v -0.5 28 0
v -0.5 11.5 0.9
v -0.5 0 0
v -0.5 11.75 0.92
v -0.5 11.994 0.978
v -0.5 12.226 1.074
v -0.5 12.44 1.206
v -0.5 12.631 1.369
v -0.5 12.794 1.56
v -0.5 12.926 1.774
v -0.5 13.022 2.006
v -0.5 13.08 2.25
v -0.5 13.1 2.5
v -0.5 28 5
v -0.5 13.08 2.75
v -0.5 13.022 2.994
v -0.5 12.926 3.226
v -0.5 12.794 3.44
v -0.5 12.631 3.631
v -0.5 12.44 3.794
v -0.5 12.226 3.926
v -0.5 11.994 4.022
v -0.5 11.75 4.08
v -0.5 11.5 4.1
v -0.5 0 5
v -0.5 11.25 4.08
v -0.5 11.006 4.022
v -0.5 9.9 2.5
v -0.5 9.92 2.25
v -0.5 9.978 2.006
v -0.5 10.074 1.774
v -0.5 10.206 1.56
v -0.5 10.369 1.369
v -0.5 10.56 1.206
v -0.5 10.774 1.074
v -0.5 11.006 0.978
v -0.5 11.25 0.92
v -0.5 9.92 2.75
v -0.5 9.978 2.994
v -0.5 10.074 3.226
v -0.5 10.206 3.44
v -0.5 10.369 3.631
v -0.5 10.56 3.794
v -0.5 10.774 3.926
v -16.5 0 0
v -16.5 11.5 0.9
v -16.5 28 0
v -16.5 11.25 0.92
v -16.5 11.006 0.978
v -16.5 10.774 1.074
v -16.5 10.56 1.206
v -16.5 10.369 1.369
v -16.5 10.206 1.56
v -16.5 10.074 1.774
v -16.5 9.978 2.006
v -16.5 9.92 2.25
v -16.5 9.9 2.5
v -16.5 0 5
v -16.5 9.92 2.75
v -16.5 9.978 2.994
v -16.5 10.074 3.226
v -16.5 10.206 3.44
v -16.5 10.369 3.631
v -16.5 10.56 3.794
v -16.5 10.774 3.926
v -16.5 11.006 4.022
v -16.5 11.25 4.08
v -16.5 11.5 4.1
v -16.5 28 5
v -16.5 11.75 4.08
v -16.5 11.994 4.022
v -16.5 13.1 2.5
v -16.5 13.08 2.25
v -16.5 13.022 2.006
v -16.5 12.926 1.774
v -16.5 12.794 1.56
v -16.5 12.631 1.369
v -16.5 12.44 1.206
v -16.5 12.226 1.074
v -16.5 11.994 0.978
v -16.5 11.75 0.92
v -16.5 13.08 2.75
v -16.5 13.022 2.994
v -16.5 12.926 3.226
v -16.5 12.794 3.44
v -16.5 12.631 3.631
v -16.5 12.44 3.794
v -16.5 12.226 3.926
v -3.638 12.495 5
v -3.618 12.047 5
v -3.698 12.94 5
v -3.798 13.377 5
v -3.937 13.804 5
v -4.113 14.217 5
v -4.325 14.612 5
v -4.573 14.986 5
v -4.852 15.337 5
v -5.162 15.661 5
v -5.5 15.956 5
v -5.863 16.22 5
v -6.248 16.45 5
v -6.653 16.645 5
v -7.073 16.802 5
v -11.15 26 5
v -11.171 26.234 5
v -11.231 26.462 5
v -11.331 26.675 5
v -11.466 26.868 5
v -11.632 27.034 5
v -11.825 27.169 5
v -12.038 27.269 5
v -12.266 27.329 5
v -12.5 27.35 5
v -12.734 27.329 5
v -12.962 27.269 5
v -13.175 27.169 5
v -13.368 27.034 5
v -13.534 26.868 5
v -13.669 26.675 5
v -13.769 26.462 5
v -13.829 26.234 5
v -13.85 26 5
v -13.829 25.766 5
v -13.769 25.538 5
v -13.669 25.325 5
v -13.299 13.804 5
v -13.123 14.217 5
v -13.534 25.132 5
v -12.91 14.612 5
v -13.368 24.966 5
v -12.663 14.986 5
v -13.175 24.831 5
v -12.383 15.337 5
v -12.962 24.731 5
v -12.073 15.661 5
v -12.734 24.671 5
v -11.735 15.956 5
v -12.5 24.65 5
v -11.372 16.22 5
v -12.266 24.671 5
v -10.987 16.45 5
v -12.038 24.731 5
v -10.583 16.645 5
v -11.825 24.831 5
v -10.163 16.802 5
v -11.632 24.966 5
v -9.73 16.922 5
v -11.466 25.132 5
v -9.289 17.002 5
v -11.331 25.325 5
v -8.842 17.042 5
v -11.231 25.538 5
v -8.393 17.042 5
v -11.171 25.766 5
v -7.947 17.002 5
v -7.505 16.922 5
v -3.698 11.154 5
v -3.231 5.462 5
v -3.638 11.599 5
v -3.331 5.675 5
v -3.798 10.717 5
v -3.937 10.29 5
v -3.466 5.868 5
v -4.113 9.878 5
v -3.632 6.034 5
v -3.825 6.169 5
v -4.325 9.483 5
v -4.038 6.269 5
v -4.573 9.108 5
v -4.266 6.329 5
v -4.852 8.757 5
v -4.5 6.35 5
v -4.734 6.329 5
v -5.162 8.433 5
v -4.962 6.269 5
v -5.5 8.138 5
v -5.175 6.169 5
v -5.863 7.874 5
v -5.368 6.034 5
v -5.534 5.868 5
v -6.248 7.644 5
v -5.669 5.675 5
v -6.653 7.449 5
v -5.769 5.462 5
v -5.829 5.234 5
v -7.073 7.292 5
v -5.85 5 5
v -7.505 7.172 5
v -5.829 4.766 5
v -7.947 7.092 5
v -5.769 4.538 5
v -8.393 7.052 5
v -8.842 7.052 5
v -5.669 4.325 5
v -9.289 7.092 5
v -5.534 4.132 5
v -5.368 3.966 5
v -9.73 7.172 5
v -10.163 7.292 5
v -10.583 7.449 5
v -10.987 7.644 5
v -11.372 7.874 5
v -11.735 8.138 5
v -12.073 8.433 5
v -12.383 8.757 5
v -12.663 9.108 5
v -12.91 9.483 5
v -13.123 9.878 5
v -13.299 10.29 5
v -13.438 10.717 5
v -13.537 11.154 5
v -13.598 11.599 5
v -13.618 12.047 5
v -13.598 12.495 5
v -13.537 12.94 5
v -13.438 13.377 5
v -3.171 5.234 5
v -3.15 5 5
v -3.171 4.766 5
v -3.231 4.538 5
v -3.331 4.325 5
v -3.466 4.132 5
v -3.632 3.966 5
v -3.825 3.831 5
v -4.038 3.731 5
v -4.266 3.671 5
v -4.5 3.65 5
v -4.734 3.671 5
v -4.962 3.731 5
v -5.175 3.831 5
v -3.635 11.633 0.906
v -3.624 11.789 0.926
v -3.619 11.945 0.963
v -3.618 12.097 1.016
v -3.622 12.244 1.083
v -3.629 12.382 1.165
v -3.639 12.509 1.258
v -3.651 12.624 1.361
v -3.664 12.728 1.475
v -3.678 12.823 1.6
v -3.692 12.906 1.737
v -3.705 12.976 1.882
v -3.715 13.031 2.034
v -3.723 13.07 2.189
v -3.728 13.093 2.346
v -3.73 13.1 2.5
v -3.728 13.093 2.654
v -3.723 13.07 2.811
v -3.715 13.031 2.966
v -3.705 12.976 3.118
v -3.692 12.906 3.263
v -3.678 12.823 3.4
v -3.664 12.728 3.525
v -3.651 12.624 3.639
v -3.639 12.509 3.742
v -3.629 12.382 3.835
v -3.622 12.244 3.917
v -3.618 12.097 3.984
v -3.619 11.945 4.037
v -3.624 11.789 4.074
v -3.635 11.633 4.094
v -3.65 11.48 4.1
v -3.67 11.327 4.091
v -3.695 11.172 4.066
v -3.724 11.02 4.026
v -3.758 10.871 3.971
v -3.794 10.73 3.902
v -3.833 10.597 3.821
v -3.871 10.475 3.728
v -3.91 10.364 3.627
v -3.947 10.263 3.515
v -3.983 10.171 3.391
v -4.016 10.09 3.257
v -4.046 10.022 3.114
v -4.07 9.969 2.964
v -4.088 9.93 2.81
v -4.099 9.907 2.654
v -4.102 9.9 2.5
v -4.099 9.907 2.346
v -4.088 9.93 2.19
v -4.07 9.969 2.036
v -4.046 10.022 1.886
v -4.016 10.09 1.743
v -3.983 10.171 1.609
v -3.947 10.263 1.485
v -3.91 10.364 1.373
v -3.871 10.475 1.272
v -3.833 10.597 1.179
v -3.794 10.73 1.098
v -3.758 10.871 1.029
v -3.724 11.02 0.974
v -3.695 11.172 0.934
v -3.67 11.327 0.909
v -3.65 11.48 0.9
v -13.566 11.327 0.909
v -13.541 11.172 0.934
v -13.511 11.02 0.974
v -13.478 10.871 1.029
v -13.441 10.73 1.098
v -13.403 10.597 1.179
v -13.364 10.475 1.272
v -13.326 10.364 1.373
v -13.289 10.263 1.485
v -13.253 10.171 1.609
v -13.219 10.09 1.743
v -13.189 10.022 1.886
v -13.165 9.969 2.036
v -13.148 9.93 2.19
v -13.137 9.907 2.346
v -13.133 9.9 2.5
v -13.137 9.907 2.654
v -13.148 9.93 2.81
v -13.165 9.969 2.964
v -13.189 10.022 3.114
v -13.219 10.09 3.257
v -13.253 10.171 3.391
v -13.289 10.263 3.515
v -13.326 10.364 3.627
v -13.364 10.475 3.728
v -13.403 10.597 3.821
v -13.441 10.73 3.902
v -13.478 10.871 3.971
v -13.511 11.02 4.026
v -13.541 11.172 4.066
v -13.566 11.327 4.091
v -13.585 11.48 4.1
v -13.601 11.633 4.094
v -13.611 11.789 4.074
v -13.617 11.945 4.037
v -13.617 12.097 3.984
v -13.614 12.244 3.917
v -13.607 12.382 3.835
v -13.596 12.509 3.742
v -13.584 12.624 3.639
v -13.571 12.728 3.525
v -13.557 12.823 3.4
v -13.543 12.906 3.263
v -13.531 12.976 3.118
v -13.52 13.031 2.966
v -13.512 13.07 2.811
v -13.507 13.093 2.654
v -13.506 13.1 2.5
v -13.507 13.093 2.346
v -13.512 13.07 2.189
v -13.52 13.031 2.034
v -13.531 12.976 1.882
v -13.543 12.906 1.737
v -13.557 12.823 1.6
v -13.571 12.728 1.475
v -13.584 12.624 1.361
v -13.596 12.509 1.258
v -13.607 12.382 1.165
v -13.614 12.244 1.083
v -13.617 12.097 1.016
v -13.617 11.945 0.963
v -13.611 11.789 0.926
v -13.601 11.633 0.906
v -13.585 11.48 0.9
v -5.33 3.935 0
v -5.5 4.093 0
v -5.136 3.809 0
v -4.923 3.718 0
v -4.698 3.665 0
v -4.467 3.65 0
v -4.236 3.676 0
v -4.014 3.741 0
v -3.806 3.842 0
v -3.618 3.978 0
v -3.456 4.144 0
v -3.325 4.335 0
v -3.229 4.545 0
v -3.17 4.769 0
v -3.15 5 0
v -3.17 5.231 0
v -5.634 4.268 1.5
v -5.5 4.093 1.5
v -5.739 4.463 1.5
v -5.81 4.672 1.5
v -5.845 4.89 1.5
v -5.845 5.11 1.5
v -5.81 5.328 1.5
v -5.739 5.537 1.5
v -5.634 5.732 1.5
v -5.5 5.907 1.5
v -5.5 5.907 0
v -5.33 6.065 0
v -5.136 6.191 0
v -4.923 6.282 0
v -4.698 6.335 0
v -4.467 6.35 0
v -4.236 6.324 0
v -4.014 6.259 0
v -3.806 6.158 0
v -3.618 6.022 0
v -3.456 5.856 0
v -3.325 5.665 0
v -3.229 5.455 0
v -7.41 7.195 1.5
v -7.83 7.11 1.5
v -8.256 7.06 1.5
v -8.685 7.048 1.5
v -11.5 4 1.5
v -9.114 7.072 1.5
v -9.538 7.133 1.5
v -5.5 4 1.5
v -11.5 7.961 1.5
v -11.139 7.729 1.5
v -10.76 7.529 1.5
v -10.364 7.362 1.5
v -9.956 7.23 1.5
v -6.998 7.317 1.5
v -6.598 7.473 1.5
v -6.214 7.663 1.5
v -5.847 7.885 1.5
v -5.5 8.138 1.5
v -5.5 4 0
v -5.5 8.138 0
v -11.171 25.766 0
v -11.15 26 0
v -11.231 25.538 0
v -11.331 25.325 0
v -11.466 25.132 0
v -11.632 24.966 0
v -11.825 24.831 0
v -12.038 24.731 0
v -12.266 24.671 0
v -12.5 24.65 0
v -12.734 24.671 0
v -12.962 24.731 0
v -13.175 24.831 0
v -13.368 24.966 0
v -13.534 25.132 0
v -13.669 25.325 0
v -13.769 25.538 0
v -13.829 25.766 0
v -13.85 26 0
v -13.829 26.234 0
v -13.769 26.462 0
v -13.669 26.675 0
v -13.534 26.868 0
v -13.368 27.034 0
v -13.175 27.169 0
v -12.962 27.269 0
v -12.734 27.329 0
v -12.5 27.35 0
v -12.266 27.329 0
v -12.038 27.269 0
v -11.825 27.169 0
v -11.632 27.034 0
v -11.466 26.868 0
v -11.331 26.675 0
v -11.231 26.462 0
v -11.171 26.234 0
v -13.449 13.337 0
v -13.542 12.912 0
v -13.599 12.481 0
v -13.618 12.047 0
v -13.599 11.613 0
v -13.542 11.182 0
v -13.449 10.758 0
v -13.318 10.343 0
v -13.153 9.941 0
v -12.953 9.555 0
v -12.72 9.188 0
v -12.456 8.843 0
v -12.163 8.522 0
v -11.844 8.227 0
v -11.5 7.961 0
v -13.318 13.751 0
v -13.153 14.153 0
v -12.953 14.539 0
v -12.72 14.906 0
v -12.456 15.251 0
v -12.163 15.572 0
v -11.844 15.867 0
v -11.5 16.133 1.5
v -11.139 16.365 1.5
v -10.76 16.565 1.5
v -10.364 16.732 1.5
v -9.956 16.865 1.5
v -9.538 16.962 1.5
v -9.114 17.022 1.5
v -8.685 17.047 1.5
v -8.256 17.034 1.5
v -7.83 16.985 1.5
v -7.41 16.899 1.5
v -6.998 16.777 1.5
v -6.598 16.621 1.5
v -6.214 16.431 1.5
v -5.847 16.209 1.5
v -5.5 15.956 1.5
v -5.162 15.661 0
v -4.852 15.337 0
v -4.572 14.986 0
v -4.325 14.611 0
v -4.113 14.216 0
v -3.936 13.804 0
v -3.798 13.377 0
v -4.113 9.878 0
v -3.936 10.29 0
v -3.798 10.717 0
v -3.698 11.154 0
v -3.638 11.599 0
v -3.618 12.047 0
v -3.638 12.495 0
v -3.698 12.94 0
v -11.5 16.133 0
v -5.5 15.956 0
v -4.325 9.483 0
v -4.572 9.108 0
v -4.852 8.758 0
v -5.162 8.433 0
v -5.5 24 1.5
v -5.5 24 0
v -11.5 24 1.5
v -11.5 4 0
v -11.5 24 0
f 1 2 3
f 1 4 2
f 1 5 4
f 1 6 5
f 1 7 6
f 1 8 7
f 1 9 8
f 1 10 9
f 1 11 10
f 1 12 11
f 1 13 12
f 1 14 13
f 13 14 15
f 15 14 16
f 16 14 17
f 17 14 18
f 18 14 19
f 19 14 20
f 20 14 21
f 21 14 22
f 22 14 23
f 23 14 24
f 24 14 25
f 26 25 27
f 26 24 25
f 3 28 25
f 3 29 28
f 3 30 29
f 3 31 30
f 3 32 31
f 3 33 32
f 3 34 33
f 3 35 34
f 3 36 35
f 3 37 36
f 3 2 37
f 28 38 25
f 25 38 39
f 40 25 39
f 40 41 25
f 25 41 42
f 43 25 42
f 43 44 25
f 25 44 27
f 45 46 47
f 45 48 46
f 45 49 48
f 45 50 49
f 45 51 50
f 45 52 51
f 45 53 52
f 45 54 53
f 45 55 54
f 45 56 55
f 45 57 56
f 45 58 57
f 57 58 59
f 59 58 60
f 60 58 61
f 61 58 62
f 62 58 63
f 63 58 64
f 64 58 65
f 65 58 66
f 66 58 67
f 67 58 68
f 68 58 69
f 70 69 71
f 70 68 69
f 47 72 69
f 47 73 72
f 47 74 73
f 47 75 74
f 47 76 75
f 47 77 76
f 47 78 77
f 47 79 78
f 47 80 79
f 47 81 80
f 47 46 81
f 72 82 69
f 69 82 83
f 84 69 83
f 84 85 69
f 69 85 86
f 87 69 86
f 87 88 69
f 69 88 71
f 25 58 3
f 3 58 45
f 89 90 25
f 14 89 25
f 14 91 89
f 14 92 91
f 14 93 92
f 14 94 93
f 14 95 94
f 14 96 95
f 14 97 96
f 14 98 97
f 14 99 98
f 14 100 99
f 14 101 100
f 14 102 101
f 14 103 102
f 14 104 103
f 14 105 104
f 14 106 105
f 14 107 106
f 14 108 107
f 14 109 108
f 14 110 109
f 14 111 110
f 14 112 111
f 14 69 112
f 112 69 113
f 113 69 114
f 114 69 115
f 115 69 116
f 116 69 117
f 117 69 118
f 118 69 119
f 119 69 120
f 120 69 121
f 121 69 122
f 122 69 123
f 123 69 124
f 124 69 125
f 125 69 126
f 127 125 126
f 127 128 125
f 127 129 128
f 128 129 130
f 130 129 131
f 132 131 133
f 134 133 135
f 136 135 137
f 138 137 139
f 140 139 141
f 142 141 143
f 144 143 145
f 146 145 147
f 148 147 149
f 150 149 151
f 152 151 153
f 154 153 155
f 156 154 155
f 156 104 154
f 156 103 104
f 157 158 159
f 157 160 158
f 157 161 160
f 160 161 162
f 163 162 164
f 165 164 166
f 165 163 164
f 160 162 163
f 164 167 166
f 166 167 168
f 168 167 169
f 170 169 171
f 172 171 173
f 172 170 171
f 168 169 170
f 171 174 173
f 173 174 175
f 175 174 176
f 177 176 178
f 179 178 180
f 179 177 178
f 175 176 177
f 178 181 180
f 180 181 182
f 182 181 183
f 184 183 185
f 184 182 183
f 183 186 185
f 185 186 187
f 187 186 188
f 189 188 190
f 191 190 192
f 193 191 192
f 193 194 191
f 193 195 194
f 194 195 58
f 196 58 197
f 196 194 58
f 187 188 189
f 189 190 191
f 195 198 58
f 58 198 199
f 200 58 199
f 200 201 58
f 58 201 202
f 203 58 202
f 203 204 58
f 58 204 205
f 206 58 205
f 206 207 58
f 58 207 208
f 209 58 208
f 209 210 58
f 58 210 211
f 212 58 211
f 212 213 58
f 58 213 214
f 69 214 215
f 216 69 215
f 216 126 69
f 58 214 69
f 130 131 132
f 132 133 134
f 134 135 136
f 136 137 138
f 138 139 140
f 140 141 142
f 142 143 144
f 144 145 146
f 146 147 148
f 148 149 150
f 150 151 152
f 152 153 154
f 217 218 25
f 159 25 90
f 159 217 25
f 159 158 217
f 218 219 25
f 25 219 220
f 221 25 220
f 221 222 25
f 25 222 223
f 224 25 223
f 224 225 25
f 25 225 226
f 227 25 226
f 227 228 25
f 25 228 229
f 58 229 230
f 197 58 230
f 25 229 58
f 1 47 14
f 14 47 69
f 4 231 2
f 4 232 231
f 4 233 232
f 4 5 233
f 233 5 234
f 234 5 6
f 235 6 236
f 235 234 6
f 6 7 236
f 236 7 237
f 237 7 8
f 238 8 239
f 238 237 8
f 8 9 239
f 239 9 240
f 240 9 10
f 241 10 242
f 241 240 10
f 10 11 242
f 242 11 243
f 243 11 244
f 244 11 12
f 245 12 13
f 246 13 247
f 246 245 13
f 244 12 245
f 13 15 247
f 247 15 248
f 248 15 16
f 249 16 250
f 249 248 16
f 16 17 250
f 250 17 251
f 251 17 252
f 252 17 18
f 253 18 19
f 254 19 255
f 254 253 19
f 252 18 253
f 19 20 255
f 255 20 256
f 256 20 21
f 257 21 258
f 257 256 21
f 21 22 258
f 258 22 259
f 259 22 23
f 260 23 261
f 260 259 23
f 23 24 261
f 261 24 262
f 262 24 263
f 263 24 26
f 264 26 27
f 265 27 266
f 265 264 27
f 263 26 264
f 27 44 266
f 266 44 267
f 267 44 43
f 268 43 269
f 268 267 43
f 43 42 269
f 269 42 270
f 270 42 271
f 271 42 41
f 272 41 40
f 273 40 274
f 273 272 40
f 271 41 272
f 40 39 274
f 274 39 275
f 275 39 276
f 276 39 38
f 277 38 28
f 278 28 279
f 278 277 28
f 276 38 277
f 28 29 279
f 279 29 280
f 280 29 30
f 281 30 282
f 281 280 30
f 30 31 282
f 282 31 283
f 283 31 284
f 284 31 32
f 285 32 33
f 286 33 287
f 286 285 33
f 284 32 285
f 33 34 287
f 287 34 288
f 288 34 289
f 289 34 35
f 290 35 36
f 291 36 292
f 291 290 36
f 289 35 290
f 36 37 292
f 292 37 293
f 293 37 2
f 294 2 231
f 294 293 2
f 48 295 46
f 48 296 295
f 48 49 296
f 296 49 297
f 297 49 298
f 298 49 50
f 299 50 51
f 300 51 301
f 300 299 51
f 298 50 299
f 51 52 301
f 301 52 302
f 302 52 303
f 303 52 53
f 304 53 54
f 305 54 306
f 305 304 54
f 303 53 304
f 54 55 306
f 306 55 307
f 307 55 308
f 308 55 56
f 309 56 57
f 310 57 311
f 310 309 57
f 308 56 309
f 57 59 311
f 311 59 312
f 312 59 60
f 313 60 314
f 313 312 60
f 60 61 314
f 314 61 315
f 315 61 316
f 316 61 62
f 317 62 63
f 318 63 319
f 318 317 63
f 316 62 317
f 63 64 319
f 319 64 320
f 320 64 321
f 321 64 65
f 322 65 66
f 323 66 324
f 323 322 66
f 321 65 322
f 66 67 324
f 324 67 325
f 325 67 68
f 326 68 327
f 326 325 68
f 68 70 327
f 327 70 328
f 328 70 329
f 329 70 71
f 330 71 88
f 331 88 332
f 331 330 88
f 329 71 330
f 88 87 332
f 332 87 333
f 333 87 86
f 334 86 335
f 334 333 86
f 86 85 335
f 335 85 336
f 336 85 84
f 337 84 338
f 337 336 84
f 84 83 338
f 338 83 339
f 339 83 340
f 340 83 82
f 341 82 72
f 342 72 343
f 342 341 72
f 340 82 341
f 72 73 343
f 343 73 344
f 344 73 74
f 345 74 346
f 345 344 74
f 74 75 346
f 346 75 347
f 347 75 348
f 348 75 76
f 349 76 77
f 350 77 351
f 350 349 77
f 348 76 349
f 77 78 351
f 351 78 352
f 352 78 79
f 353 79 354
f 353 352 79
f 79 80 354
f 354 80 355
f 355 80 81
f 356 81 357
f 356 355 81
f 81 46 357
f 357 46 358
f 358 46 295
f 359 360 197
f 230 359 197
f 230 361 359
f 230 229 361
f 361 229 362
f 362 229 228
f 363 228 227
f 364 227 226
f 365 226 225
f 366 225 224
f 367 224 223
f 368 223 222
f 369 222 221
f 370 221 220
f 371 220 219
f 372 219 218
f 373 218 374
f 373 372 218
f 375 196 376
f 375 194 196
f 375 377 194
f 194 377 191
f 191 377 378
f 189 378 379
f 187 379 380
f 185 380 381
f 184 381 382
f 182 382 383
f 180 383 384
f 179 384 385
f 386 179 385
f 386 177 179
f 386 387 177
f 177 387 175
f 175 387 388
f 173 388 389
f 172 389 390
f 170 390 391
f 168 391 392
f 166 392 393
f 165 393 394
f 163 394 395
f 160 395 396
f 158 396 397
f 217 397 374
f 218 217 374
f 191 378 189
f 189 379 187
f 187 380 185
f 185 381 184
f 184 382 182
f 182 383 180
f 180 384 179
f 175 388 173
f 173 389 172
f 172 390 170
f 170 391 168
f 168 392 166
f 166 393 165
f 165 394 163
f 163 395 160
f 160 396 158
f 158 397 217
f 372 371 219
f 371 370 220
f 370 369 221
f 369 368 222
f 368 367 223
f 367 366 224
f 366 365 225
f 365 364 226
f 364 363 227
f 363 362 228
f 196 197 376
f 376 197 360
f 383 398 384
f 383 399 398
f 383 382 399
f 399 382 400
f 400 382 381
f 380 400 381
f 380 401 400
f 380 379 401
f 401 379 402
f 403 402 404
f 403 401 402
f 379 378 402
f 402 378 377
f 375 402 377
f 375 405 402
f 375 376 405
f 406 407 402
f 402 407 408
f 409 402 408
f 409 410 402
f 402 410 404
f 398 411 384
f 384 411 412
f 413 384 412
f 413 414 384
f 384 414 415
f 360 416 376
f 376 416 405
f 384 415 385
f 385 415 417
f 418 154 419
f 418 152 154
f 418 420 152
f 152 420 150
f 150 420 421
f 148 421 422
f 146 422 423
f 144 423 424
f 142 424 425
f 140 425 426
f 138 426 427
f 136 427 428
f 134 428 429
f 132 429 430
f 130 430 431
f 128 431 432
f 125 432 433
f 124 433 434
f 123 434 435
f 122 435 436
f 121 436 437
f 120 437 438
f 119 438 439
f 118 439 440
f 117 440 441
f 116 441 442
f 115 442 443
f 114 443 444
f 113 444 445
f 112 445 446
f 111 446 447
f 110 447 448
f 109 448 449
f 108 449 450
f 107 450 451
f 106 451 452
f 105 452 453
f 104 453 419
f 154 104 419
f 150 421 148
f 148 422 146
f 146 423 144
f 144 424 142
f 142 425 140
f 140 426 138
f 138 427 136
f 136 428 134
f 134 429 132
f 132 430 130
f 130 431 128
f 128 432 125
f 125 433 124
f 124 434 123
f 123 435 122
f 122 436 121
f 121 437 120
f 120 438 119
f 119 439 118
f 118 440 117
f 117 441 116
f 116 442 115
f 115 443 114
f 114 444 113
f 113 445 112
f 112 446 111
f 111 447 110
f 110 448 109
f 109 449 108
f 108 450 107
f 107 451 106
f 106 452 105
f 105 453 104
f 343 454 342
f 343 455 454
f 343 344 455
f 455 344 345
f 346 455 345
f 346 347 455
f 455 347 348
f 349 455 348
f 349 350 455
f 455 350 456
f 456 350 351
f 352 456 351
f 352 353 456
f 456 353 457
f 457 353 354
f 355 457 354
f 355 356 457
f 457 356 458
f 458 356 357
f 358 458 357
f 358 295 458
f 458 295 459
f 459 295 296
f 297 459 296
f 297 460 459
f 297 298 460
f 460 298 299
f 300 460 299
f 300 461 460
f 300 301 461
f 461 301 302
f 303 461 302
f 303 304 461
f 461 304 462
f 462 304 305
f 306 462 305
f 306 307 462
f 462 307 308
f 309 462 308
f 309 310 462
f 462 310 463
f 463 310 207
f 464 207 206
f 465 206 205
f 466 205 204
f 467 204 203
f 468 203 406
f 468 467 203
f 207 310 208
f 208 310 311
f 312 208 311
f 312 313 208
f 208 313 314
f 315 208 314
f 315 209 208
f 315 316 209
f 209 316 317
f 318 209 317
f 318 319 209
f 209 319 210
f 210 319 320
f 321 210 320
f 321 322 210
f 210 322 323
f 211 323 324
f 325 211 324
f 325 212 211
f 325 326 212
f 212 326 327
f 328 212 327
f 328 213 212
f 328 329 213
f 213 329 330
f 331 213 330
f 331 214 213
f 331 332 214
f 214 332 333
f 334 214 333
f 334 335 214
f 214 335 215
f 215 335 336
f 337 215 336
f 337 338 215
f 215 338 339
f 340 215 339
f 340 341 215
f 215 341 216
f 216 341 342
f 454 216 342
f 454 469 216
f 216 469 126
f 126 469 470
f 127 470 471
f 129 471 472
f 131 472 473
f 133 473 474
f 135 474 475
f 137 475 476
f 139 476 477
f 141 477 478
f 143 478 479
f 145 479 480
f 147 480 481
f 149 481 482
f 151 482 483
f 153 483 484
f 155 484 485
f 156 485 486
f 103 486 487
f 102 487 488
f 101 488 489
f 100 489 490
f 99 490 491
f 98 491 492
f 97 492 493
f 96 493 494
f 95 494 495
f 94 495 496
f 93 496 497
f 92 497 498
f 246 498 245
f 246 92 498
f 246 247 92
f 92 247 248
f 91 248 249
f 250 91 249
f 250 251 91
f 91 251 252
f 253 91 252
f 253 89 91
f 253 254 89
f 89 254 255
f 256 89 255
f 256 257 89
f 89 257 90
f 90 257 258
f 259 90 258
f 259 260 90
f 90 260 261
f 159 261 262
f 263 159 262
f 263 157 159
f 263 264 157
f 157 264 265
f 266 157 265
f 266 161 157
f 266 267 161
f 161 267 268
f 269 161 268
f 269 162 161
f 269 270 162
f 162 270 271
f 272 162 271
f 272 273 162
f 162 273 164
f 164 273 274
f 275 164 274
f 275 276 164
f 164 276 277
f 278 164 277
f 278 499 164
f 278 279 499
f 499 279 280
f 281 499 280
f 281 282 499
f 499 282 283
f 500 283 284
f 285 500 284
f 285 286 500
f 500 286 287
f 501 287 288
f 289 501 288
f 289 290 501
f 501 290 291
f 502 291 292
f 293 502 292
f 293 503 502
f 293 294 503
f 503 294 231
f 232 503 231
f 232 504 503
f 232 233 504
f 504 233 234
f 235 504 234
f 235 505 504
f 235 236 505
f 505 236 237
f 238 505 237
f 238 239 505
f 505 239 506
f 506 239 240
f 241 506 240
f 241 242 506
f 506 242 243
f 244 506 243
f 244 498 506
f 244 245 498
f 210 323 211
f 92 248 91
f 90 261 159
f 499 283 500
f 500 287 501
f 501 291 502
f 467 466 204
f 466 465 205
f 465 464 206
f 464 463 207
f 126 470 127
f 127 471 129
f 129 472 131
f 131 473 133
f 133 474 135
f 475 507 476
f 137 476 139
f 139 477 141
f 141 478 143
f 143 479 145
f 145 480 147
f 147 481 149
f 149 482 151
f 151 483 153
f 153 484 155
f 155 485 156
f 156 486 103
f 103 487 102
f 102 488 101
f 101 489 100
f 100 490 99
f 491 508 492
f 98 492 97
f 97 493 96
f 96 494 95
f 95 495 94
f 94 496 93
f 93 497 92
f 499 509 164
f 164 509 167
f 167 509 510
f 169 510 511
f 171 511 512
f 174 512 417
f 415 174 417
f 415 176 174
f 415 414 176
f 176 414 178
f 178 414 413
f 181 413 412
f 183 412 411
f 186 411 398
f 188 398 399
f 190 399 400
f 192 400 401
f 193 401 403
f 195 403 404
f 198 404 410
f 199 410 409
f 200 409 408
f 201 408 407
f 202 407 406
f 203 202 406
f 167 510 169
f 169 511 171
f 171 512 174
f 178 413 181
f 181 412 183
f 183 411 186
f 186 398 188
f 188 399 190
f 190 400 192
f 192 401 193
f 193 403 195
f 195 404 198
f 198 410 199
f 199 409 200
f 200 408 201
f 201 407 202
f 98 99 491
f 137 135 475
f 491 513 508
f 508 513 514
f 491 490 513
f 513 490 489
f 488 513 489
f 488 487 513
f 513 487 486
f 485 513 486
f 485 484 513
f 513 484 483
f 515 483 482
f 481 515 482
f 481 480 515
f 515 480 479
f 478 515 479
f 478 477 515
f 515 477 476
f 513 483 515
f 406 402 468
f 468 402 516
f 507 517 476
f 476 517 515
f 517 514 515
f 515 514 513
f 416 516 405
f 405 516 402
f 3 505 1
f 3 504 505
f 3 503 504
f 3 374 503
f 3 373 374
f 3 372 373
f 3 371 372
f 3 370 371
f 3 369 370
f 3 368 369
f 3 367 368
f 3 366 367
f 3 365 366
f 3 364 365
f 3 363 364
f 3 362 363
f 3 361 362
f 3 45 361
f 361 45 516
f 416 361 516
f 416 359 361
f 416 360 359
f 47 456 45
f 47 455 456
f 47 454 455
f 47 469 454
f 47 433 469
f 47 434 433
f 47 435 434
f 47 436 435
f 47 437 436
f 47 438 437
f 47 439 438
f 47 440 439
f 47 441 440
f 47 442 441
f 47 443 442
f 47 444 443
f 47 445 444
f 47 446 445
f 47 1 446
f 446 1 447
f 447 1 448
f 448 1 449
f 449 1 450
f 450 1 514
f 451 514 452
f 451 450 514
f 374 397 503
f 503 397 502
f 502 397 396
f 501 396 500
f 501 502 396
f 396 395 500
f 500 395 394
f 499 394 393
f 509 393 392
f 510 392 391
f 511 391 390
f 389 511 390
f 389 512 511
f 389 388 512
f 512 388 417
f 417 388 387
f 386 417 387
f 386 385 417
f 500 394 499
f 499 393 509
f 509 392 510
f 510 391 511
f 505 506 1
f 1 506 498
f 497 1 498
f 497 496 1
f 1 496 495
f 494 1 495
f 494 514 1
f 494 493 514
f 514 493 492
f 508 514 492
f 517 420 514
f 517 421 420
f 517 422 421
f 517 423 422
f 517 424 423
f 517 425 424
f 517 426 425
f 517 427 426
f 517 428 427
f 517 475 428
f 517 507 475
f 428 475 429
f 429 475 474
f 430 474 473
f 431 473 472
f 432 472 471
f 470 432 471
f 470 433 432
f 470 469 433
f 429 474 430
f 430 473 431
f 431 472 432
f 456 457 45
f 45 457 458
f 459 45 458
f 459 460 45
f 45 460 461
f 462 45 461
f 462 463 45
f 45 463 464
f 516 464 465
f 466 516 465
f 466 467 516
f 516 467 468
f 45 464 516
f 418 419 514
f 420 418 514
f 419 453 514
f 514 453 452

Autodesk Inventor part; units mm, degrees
ref_plane "YZ Plane" through (0, 0, 0) normal (1, 0, 0) x (0, 1, 0)
ref_plane "XZ Plane" through (0, 0, 0) normal (0, 1, 0) x (-1, 0, 0)
ref_plane "XY Plane" through (0, 0, 0) normal (0, 0, 1) x (1, 0, 0)
sketch "Sketch2" plane through (0, 0, 0) normal (0, 0, 1) x (1, 0, 0)
  line L0 (-17, 28) -> (0, 28)
  line L1 (0, 28) -> (0, 17)
  line L2 (0, 7) -> (0, 0)
  line L3 (0, 0) -> (-17, 0)
  line L4 (-17, 0) -> (-17, 7)
  line L5 (-17, 28) -> (-17, 17)
  line L6 (-17, 17) -> (-17, 7)
  line L7 (0, 17) -> (0, 7)
  dimension "d0" = 17
  dimension "d1" = 28
extrude "Extrusion1" add sketch "Sketch2" along normal blind 5
sketch "Sketch4" plane through (0, 0, 0) normal (0, 0, -1) x (-1, 0, 0)
  line L0 (17, 28) -> (0, 28) projected
  line L1 (0, 28) -> (0, 0) projected
  line L2 (0, 0) -> (17, 0) projected
  line L3 (17, 0) -> (17, 28) projected
  line L4 (0, 28) -> (17, 28) projected
  line L5 (11.5, 24) -> (11.5, 4)
  line L6 (11.5, 4) -> (5.5, 4)
  line L7 (5.5, 4) -> (5.5, 24)
  line L8 (5.5, 24) -> (11.5, 24)
  dimension "d15" = 6
  dimension "d17" = 5.5
  dimension "d30" = 20
  dimension "d31" = 4
extrude "Extrusion3" cut sketch "Sketch4" against normal blind 1.5 contours L5 L6 L7 L8
sketch "Sketch5" plane through (0, 0, 5) normal (0, 0, 1) x (1, 0, 0)
  line L0 (0, 28) -> (-17, 28) projected
  line L1 (-17, 28) -> (-17, 0) projected
  line L2 (-17, 0) -> (0, 0) projected
  line L3 (0, 0) -> (0, 28) projected
  line L4 (-21, 17) -> (4, 7)
  line L5 (-21.4753, 7) -> (4, 17)
  circle A0 centre (-8.6177, 12.0471) radius 5
  dimension "d20" = 10
  dimension "d21" = 12.0471
extrude "Extrusion4" cut sketch "Sketch5" against normal through all contours A0 L4 L5 | L5 L4 A0 | L4 L5 A0 | A0 L5 L4
sketch "Sketch6" plane through (0, 0, 5) normal (0, 0, 1) x (1, 0, 0)
  circle A0 centre (-8.6177, 12.0471) radius 5 projected
  line L0 (0, 28) -> (-17, 28) projected
  line L1 (-17, 28) -> (-17, 0) projected
  line L2 (-17, 0) -> (0, 0) projected
  line L3 (0, 0) -> (0, 28) projected
  circle A1 centre (-12.5, 26) radius 1.35
  dimension "d24" = 2.7
  dimension "d25" = 4.5
  dimension "d26" = 2
extrude "Extrusion5" cut sketch "Sketch6" against normal through all contours A1
sketch "Sketch7" plane through (0, 0, 5) normal (0, 0, 1) x (1, 0, 0)
  line L0 (0, 0) -> (0, 28) projected
  line L1 (-17, 0) -> (0, 0) projected
  circle A0 centre (-4.5, 5) radius 1.35
  point P0 (0, 7)
  dimension "d32" = 2.7
  dimension "d33" = 4.5
  dimension "d34" = 5
extrude "Extrusion6" cut sketch "Sketch7" against normal through all
sketch "Sketch8" plane through (0, 0, 0) normal (1, 0, 0) x (0, 0, -1)
  circle A0 centre (-2.5, 11.5) radius 1.6
  line L0 (-5, 0) -> (-5, 28) projected
  line L1 (0, 0) -> (-5, 0) projected
  point P0 (0, -7)
  dimension "d37" = 3.2
  dimension "d41" = 11.5
  dimension "d49" = 2.5
extrude "Extrusion8" cut sketch "Sketch8" against normal through all
sketch "Sketch9" plane through (0, 0, 5) normal (0, 0, 1) x (1, 0, 0)
  circle A0 centre (-4.5, 5) radius 1.35 projected
  circle A1 centre (-12.5, 26) radius 1.35 projected
  circle A2 centre (-8.6177, 12.0471) radius 5 projected
  line L0 (0, 28) -> (-17, 28) projected
  line L1 (-17, 28) -> (-17, 0) projected
  line L2 (-17, 0) -> (0, 0) projected
  line L3 (0, 0) -> (0, 28) projected
  line L4 (-17, 0) -> (-16.5, 0)
  line L5 (-16.5, 0) -> (-16.5, 28)
  line L6 (-16.5, 28) -> (-17, 28)
  line L7 (-17, 28) -> (-17, 0)
  line L8 (0, 0) -> (-0.5, 0)
  line L9 (-0.5, 0) -> (-0.5, 28)
  line L10 (-0.5, 28) -> (0, 28)
  line L11 (0, 28) -> (0, 0)
  dimension "d47" = 0.5
  dimension "d48" = 0.5
extrude "Extrusion9" cut sketch "Sketch9" against normal through all contours L3 L2 L9 L0 | L5 L2 L1 L0
properties part number "tapaA0.2"
